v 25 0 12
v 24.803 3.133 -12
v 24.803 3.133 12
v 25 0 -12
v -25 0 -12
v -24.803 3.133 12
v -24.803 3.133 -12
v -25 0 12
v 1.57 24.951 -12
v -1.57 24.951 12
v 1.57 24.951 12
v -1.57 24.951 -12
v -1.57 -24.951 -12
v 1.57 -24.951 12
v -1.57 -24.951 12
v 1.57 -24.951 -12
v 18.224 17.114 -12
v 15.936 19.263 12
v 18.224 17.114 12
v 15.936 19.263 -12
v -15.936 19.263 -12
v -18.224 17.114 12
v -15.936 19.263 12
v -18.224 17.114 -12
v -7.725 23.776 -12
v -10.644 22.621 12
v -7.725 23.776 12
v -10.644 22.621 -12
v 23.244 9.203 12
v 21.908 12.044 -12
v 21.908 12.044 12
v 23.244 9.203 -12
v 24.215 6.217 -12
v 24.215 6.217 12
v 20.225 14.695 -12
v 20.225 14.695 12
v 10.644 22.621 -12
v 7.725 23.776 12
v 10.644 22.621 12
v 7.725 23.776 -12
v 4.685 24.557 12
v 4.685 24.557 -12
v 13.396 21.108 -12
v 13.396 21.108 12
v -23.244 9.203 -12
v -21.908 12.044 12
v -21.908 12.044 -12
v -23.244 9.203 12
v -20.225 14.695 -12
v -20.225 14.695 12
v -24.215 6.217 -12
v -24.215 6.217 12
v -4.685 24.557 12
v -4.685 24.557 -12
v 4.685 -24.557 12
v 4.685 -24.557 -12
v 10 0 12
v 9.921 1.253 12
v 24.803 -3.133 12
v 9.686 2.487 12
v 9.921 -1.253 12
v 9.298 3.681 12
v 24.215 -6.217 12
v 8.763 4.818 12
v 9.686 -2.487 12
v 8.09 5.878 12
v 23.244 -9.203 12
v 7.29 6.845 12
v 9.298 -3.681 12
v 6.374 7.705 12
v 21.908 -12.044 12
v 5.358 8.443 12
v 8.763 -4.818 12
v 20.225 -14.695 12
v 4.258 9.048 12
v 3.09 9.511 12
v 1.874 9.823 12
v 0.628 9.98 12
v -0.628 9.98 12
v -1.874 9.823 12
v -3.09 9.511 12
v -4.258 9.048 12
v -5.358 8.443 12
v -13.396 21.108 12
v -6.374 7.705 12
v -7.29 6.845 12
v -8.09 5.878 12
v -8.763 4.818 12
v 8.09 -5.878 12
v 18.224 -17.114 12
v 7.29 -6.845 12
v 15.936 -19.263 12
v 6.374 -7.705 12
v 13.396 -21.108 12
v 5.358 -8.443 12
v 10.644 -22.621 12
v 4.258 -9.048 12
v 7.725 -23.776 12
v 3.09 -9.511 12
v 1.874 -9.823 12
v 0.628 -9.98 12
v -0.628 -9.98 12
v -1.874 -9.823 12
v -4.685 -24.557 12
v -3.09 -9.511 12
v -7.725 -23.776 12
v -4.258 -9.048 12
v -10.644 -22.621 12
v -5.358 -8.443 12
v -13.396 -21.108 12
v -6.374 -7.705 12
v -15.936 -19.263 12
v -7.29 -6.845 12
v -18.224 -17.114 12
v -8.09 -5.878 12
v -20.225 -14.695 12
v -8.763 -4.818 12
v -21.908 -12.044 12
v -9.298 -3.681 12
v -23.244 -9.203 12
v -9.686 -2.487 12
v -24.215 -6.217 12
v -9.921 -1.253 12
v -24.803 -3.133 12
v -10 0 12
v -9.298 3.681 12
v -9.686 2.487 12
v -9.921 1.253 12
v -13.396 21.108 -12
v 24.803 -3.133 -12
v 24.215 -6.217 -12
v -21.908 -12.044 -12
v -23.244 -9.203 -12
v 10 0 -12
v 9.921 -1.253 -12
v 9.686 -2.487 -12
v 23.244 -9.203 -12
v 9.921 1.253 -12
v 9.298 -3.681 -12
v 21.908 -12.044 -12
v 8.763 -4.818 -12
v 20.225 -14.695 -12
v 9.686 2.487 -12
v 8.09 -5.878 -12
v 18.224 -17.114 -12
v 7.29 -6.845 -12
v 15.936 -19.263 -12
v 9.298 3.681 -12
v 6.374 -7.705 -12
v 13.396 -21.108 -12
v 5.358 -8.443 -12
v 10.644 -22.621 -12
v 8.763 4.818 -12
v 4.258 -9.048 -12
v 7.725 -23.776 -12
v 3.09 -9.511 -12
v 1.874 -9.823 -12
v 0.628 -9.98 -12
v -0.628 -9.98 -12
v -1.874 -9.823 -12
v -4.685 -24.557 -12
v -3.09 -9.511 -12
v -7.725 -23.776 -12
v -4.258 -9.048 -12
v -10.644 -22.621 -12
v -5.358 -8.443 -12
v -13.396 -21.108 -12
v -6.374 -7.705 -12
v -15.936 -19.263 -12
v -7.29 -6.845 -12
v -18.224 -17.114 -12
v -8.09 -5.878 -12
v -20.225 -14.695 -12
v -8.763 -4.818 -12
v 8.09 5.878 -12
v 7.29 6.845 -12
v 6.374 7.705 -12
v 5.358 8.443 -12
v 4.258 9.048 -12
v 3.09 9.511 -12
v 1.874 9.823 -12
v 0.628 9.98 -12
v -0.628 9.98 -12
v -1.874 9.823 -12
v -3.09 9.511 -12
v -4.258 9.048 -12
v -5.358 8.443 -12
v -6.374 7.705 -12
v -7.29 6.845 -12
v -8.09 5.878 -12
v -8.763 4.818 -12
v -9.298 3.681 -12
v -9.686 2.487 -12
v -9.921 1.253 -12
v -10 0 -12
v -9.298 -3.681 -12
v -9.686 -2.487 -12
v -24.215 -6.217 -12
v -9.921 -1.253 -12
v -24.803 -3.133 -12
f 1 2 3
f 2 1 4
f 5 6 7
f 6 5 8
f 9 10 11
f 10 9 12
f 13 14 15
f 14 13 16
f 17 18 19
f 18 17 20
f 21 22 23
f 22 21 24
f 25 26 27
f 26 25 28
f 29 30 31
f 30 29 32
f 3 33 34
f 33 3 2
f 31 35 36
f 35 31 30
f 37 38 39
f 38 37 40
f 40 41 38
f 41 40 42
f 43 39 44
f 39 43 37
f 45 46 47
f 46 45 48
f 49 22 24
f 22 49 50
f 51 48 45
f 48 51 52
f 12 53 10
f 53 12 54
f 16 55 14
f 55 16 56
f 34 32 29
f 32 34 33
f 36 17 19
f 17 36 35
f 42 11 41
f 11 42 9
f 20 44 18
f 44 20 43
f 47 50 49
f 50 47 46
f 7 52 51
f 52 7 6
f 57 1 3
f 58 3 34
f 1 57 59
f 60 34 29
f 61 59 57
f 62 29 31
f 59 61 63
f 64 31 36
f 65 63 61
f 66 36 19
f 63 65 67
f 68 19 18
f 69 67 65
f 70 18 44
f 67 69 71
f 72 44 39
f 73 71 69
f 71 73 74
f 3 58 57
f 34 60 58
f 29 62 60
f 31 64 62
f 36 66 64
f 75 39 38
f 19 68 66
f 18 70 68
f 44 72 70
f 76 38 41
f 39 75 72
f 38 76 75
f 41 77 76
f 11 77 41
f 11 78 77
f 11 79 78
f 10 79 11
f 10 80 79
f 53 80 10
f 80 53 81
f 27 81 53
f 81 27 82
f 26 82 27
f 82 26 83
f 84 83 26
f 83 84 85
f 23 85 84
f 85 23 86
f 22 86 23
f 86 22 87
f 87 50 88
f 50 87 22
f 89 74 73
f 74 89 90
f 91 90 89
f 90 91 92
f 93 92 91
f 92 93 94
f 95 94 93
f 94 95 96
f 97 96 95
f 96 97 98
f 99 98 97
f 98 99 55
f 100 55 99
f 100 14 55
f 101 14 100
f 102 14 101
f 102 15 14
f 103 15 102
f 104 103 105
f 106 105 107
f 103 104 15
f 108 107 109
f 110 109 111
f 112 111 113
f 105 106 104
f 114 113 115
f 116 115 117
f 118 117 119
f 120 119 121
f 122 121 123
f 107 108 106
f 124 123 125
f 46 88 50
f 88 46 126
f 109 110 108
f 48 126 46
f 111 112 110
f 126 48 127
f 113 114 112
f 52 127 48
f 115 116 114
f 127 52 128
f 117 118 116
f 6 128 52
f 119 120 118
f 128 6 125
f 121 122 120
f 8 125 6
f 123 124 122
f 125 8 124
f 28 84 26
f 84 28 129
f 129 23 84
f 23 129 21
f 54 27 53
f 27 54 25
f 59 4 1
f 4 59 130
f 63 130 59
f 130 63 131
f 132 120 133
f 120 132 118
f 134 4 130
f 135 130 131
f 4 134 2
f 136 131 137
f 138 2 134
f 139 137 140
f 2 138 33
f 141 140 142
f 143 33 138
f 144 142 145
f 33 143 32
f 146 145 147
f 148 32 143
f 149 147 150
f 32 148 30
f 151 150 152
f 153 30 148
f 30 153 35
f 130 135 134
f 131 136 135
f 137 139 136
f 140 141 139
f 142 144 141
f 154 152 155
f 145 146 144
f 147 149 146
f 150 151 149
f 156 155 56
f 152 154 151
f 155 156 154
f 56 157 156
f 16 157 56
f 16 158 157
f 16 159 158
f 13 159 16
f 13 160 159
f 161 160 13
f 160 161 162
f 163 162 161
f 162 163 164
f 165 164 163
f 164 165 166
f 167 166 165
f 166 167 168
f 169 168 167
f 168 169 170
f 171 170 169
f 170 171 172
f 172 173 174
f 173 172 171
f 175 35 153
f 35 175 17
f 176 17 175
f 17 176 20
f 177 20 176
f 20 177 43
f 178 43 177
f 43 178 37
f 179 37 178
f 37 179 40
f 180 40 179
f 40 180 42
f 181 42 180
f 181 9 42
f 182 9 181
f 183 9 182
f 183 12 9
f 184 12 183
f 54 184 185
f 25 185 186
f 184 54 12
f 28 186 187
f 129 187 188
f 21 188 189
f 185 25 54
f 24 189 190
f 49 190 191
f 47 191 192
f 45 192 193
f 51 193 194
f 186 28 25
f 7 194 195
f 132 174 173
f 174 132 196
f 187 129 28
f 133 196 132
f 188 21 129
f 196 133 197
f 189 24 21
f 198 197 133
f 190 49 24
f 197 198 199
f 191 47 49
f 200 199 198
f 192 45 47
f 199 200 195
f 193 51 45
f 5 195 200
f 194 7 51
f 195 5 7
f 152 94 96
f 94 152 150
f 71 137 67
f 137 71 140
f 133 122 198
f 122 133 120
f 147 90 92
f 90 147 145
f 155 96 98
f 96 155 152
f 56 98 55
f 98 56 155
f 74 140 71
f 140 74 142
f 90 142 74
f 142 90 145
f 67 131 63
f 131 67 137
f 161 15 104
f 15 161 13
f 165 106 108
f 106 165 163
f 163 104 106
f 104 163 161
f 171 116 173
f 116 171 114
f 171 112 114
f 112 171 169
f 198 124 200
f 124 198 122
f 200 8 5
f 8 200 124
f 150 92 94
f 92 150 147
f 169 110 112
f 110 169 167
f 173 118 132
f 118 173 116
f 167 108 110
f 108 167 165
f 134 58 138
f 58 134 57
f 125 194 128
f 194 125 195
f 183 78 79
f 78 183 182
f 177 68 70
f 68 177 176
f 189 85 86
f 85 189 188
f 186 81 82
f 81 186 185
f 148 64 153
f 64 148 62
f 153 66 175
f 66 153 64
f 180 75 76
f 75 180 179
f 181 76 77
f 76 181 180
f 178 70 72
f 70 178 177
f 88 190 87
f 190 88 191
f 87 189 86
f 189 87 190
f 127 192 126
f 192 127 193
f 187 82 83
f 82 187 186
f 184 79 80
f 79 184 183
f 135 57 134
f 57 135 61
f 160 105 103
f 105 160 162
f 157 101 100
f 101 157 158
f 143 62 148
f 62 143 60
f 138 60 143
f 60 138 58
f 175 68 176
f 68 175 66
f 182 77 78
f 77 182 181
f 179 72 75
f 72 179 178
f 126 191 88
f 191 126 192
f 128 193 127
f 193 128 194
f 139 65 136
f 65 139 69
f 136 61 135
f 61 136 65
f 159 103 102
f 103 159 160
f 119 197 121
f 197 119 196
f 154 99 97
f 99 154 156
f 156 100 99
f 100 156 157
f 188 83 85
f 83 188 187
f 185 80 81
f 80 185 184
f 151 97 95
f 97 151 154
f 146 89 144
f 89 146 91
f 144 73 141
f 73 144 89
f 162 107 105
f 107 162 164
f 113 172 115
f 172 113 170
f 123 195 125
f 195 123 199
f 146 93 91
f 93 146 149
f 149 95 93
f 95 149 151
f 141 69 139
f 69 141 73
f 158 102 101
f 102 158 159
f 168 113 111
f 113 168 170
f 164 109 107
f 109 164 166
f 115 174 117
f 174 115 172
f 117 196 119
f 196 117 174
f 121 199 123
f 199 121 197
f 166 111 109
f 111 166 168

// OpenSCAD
$fn = 50;


difference() {
	union() {
		translate(v = [0, 0, -12.0000000000]) {
			cylinder(h = 24, r = 25.0000000000);
		}
	}
	union() {
		translate(v = [0, 0, -100.0000000000]) {
			cylinder(h = 200, r = 10);
		}
	}
}
